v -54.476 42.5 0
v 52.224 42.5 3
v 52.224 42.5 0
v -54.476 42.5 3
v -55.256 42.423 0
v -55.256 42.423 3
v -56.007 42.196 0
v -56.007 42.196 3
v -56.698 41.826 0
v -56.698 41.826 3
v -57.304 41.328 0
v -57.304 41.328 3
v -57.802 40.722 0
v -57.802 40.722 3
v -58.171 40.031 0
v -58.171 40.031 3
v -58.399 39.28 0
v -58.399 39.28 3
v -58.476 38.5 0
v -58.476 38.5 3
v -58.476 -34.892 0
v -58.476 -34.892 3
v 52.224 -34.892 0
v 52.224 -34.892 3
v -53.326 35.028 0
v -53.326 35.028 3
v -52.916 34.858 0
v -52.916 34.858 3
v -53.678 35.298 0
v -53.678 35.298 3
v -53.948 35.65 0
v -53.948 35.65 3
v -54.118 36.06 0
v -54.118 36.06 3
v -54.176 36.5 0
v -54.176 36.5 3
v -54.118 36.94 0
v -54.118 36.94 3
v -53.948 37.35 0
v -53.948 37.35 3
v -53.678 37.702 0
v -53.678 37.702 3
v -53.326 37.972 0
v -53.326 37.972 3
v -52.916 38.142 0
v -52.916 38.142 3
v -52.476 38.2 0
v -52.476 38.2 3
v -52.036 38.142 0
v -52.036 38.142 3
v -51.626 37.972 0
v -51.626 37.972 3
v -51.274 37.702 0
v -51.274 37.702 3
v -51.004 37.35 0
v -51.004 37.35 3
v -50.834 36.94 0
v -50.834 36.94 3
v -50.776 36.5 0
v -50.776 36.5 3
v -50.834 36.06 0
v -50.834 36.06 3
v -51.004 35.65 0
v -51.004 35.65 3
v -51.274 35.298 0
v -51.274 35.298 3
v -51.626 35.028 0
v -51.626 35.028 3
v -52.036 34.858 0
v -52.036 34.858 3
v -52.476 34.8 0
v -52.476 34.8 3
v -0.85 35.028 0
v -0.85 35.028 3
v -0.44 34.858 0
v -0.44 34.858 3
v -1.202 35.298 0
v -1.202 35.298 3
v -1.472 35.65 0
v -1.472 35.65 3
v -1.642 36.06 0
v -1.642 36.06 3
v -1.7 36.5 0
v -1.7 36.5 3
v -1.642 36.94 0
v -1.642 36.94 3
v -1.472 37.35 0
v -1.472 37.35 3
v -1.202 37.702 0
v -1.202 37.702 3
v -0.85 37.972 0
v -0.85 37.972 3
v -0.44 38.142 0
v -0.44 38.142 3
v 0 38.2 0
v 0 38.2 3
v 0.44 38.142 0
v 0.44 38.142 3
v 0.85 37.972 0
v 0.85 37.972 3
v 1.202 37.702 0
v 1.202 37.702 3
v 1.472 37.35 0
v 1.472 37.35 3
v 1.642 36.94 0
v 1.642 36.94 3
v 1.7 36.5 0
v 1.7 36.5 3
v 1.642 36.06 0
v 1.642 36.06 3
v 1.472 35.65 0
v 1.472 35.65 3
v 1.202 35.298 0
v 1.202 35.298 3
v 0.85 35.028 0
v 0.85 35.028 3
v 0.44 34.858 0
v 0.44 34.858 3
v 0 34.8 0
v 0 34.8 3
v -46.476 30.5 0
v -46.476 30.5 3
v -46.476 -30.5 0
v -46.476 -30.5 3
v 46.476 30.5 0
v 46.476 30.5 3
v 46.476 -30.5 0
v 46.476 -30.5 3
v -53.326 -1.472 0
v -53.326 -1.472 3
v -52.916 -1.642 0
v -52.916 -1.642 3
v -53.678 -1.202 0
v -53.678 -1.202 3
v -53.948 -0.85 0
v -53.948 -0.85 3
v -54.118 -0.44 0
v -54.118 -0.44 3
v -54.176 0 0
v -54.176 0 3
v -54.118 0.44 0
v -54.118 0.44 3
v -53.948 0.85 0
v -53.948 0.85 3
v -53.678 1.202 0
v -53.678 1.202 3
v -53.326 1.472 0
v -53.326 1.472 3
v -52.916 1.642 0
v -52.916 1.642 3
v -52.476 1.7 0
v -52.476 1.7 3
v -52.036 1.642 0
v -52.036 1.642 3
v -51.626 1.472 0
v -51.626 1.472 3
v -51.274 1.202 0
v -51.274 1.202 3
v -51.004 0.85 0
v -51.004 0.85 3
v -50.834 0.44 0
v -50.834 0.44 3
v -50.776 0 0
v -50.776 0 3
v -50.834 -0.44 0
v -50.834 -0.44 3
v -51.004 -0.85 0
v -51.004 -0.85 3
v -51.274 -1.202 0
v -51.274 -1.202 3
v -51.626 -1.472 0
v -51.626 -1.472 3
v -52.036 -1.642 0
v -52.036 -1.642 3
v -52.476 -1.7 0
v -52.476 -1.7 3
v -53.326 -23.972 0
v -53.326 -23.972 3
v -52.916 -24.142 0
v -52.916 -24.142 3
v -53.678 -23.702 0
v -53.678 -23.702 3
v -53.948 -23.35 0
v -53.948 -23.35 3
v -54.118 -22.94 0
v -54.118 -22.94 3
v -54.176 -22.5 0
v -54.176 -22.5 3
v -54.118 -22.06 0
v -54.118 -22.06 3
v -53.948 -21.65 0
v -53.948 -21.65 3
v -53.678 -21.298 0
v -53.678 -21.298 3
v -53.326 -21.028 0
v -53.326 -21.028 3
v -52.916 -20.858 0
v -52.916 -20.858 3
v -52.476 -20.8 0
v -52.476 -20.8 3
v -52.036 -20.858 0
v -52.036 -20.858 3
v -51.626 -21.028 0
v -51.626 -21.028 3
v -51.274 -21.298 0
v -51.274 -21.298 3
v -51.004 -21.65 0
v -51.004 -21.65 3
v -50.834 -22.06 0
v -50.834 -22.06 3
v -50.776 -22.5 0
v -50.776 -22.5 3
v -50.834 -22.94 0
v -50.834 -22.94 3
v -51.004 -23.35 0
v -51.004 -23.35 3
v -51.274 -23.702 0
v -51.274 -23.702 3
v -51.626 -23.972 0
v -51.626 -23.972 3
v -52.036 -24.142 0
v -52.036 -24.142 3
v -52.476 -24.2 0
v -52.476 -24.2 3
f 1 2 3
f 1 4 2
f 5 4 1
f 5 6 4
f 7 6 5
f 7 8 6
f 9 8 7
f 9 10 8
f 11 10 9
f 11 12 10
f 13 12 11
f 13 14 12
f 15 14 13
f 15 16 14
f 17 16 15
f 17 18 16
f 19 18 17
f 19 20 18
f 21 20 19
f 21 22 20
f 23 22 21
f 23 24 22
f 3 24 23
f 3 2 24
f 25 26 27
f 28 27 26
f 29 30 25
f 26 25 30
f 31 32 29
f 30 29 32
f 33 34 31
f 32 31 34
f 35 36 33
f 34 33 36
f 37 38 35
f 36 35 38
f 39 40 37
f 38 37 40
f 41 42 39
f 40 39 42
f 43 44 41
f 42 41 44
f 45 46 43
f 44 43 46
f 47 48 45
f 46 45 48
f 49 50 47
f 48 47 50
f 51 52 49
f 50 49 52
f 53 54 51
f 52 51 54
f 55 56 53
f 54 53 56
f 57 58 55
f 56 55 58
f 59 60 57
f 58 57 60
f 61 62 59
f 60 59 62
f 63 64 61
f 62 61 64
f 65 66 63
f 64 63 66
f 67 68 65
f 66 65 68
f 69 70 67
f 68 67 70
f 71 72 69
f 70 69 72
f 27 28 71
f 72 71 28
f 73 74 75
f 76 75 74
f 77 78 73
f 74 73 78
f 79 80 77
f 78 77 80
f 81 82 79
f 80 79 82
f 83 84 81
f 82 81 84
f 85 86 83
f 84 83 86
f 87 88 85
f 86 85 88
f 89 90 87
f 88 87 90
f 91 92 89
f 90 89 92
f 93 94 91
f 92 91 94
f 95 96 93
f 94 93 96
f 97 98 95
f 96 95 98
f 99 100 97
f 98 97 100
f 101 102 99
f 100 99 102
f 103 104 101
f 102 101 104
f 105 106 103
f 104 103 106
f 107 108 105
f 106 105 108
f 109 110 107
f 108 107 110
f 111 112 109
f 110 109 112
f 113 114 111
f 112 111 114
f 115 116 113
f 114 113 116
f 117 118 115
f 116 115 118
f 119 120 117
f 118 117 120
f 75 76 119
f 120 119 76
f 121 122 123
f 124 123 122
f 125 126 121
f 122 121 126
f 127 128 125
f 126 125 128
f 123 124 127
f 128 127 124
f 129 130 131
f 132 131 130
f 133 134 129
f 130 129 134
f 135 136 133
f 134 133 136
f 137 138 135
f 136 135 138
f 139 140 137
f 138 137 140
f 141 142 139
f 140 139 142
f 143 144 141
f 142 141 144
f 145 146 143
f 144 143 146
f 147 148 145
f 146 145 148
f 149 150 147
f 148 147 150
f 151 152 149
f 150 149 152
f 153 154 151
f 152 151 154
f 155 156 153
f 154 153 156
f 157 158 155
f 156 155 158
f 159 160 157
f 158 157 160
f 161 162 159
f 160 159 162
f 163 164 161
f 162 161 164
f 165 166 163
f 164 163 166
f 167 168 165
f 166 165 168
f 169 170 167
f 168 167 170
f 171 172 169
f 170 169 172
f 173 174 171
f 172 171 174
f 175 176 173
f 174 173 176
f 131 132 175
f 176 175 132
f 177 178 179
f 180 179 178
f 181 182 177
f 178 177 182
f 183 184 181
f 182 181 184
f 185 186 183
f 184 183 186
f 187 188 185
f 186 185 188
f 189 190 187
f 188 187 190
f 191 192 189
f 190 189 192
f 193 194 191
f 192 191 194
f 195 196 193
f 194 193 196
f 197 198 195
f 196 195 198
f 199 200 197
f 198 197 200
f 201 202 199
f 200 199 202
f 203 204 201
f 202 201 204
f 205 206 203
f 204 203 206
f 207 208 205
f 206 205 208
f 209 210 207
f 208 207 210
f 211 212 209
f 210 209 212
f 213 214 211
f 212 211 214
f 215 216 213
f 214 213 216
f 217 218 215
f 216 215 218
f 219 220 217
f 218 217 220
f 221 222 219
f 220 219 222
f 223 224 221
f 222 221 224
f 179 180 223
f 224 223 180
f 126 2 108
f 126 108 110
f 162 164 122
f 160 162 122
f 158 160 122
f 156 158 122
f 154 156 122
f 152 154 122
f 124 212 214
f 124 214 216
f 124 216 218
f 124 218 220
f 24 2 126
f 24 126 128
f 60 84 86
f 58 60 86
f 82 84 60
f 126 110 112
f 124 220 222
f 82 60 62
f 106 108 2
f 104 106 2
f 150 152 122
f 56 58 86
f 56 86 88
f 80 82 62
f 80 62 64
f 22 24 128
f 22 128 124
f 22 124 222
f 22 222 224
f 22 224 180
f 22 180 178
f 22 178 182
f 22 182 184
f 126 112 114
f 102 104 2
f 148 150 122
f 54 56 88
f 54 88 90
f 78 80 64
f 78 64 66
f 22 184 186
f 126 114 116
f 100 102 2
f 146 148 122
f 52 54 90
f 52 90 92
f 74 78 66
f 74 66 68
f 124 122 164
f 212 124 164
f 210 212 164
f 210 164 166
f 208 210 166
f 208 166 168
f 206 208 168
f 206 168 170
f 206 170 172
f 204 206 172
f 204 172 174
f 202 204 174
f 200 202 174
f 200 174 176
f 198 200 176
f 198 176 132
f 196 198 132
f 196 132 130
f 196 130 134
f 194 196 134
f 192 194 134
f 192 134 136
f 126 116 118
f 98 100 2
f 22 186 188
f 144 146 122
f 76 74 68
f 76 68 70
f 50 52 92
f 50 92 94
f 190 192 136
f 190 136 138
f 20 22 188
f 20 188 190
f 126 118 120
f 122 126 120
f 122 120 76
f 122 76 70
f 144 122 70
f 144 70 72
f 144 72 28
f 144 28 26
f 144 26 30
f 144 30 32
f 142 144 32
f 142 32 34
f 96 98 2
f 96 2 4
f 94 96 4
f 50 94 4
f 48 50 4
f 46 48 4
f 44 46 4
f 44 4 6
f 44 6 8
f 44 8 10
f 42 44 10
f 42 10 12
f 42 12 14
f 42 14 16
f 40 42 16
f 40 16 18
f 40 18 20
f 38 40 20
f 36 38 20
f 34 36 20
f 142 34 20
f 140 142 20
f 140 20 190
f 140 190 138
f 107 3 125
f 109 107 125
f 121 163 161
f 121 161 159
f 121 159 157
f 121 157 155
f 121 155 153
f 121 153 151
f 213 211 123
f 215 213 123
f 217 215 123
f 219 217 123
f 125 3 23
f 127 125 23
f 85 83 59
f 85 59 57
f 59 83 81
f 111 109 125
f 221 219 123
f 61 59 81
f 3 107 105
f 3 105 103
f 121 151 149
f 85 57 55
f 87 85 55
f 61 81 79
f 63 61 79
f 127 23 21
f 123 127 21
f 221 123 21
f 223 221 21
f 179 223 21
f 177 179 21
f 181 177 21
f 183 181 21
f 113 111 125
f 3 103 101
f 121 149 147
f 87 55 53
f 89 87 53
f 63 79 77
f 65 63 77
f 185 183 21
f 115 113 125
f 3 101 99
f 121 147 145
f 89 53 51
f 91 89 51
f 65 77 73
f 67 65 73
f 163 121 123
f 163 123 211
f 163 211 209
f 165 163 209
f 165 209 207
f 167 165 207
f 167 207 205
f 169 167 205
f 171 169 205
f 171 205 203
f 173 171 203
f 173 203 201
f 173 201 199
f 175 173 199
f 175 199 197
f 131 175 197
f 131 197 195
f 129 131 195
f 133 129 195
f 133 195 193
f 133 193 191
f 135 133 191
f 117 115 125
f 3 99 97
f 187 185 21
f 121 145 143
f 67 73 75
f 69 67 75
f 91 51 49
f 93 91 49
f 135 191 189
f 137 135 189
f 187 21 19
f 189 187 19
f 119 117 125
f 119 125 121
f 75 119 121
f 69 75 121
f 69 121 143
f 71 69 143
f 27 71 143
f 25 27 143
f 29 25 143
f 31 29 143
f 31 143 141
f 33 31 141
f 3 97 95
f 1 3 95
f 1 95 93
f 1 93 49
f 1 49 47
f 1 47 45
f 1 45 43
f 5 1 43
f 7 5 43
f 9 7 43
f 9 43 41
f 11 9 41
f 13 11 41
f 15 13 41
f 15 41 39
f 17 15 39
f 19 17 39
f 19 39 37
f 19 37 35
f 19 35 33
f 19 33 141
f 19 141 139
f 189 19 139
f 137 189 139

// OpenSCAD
// file: lib/teeth.scad
// lib/teeth.scad -- belt-tooth pulley profiles (2D) for HTD-3M and GT2.
//
// PROFILE NOTES (these are approximations good for FDM printing, not tooling-grade):
//
//  HTD 3M  (pitch 3.00 mm, belt tooth height 1.22 mm, tooth radius ~1.0 mm)
//    * Pulley OD = N*3/pi - 2*0.381  (pitch-line differential 0.381 mm).
//    * Each groove is a circle of radius 1.0 mm (+ `extra` clearance) whose centre sits
//      0.14 mm below the OD surface, i.e. 1.14 mm deep and ~1.98 mm wide at the OD,
//      with straight sides continuing out of the surface. The 1.02 mm lands between
//      grooves are left sharp.  This is the classic "round tooth" shape of HTD.
//
//  GT2  (pitch 2.00 mm, belt tooth height 0.75 mm)
//    * Pulley OD = N*2/pi - 2*0.254  (PLD 0.254 mm).
//    * Each groove is a circle of radius 0.60 mm (+ `extra`) centred 0.15 mm below the OD
//      (0.75 mm deep) hulled with a 1.4 mm wide mouth at the OD, which gives the flared
//      GT2 "rounded trapezoid" opening.
//
//  `extra` (default 0.1 mm) widens/deepens the groove to compensate for print inaccuracy.
//  Dimensions follow commonly published pulley data (Gates / SDP-SI).  Test-print one
//  pulley and increase `extra` if the belt is tight, decrease if it skips.

function htd3m_od(n) = n * 3 / PI - 2 * 0.381;
function gt2_od(n)   = n * 2 / PI - 2 * 0.254;
function pulley_od(n, profile) = profile == "htd3m" ? htd3m_od(n) : gt2_od(n);
function profile_pitch(profile) = profile == "htd3m" ? 3 : 2;

// Groove cut, 2D. y = 0 is the OD surface, the groove goes into -y, open towards +y.
module htd3m_groove(extra = 0.1) {
    r = 1.0 + extra;
    translate([0, -(1.14 - 1.0)]) circle(r = r, $fn = $coarse ? 10 : 36);       // round bottom
    translate([-r, -(1.14 - 1.0)]) square([2 * r, 0.14 + 0.6]);  // straight sides to the surface
}
module gt2_groove(extra = 0.1) {
    r = 0.60 + extra;
    hull() {
        translate([0, -(0.75 - 0.60)]) circle(r = r, $fn = $coarse ? 8 : 28);
        translate([-0.7 - extra, 0]) square([1.4 + 2 * extra, 0.6]);
    }
}

// Full toothed disc (2D). `phase` rotates the whole ring (deg).
module tooth_ring(n, profile, extra = 0.1, phase = 0) {
    od = pulley_od(n, profile);
    rotate(phase)
    difference() {
        circle(d = od, $fn = $coarse ? n * 2 : max(n * 6, 180));
        for (i = [0 : n - 1])
            rotate(i * 360 / n) translate([0, od / 2]) {
                if (profile == "htd3m") htd3m_groove(extra);
                else gt2_groove(extra);
            }
    }
}
// file: lib/common.scad
// lib/common.scad -- small shared helpers (2D shapes, nut pockets, fastener data).
// `use <lib/common.scad>`

eps_c = 0.01;

// ---- fastener data ----------------------------------------------------------
// [thread d, nut across-flats, nut thickness, clearance hole, self-tap pilot, head d, head height]
function _screw_row(s) =
    s == "M2.5" ? [2.5,  5.0, 2.0, 2.8, 2.2,  4.5, 2.5] :
    s == "M3"   ? [3.0,  5.5, 2.4, 3.4, 2.7,  5.5, 3.0] :
    s == "M4"   ? [4.0,  7.0, 3.2, 4.4, 3.6,  7.0, 4.0] :
    s == "M5"   ? [5.0,  8.0, 4.0, 5.4, 4.5,  8.5, 5.0] :
    s == "M6"   ? [6.0, 10.0, 5.0, 6.6, 5.4, 10.0, 6.0] :
    s == "M8"   ? [8.0, 13.0, 6.5, 8.4, 7.2, 13.0, 8.0] :
                  [3.0,  5.5, 2.4, 3.4, 2.7,  5.5, 3.0];
function sc_d(s)     = _screw_row(s)[0];
function sc_nut_af(s)= _screw_row(s)[1];
function sc_nut_t(s) = _screw_row(s)[2];
function sc_clear(s) = _screw_row(s)[3];
function sc_tap(s)   = _screw_row(s)[4];
function sc_head_d(s)= _screw_row(s)[5];
function sc_head_h(s)= _screw_row(s)[6];

// ---- 2D helpers -------------------------------------------------------------
// Rounded rectangle centred on the origin
module rrect2(w, h, r = 2) {
    rr = min(r, min(w, h) / 2 - 0.01);
    offset(r = rr) square([w - 2 * rr, h - 2 * rr], center = true);
}

// Slot (stadium): two circles of diameter d, centres `cc` apart along X, centred on origin
module slot2(cc, d) {
    hull() {
        translate([-cc / 2, 0]) circle(d = d);
        translate([ cc / 2, 0]) circle(d = d);
    }
}

// ---- 3D helpers -------------------------------------------------------------
// Captive nut pocket with a slide-in slot.
// Local frame: nut axis = +Z (pocket spans z = 0 .. t), slot runs towards +Y, centred on X = 0.
// Flats are at X = +-af/2 so the nut slides straight along +Y.
module nut_pocket(af, t, slot_len, clr = 0.15) {
    a = af + 2 * clr;
    linear_extrude(height = t + clr) {
        rotate(30) circle(d = a / cos(30), $fn = 6);
        translate([-a / 2, 0]) square([a, slot_len]);
    }
}

// Cone-ended countersunk hole for a flat-head screw. Axis +Z, head face at z = 0, shank goes up.
module countersink(d_shank, d_head, h_total) {
    ch = (d_head - d_shank) / 2;
    translate([0, 0, -eps_c]) cylinder(d1 = d_head + 2 * eps_c, d2 = d_shank, h = ch + eps_c);
    cylinder(d = d_shank, h = h_total);
}
// file: lib/pulley_core.scad
// lib/pulley_core.scad -- generic toothed belt pulley (HTD-3M or GT2), axis = Z.
//
// Print orientation (what this module outputs): bottom flange on the bed (z = 0),
// toothed section, top flange (45 deg underside so it prints without support),
// hub on top.  Bore, keyway/D-flat and set-screw/clamp features are cut in.
//
//   z = 0 .. bt                     bottom flange (optional)
//   bt .. bt+tooth_len              toothed section
//   .. + ft                         top flange (optional, 45 deg chamfered underside)
//   .. + hub_len                    hub (set-screw nut trap opens out of its top face)
//
// Set screw: radial hole along +X, nut pocket slides in from the top face (+Z).
// Keyway (if any) is at key_angle (90 = +Y); a D-flat (if any) is on the +X side so the
// set screw bears on it.
use <common.scad>
use <teeth.scad>
eps_c = 0.01;   // (variables are not exported by `use`, so each lib defines its own)

function pc_bt(bottom_flange, flange_t) = bottom_flange ? flange_t : 0;
function pc_ft(top_flange, flange_t, flange_extra) = top_flange ? max(flange_t, flange_extra) : 0;
function pc_height(tooth_len, flange_t, flange_extra, bottom_flange, top_flange, hub_len) =
    pc_bt(bottom_flange, flange_t) + tooth_len + pc_ft(top_flange, flange_t, flange_extra) + hub_len;
function pc_belt_mid(tooth_len, flange_t, bottom_flange) = pc_bt(bottom_flange, flange_t) + tooth_len / 2;

// 2D bore profile: round bore + optional D-flat (+X side) + optional keyway
module pc_bore_2d(bore_d, fit, flat_depth, keyway_w, keyway_h, key_angle) {
    br = bore_d / 2 + fit;
    intersection() {
        circle(r = br, $fn = $coarse ? 32 : 96);
        if (flat_depth > 0)
            translate([-br - 1, -br - 1]) square([br + 1 + (bore_d / 2 - flat_depth + fit), 2 * br + 2]);
        else
            square(4 * br, center = true);
    }
    if (keyway_w > 0)
        rotate(key_angle - 90)
            translate([-(keyway_w + 2 * fit) / 2, 0]) square([keyway_w + 2 * fit, br + keyway_h + fit]);
}

module belt_pulley(
        n, profile = "htd3m",
        tooth_len = 16,
        bore_d = 8, fit = 0.15,
        flange_t = 1.2, flange_extra = 1.5,
        bottom_flange = true, top_flange = true,
        hub_d = 20, hub_len = 8,
        hub_mode = "setscrew",        // "setscrew" | "clamp" | "none"
        screw = "M4",
        screw_z = undef,              // override set-screw height (hubless pulleys)
        keyway_w = 0, keyway_h = 1.4, key_angle = 90,
        flat_depth = 0,
        tooth_extra = 0.1, tooth_phase = 0) {

    od   = pulley_od(n, profile);
    fl_d = od + 2 * flange_extra;
    bt   = pc_bt(bottom_flange, flange_t);
    ft   = pc_ft(top_flange, flange_t, flange_extra);
    z1   = bt + tooth_len;            // top of toothed section
    zh   = z1 + ft;                   // hub starts here
    br   = bore_d / 2 + fit;
    af   = sc_nut_af(screw);
    nt   = sc_nut_t(screw) + 0.2;
    // smallest hub that still leaves wall around the screw features
    hd_min = hub_mode == "clamp" ? 2 * (br + 1.5 + af / 2 + sc_head_d(screw) / 2 + 2.0)
                                 : 2 * (br + 1.0 + nt + 2.0);
    hd     = hub_len > 0 ? max(hub_d, hd_min) : 0;
    base_d = top_flange ? fl_d : od;
    cone_h = (hub_len > 0 && hd > base_d) ? min((hd - base_d) / 2, hub_len * 0.7) : 0;
    total_h = zh + hub_len;
    zc = is_undef(screw_z) ? zh + cone_h + (hub_len - cone_h) / 2 : screw_z;
    rout = max(hd, fl_d) / 2 + 1;

    difference() {
        union() {
            if (bottom_flange) cylinder(d = fl_d, h = flange_t, $fn = $coarse ? 48 : 128);
            translate([0, 0, bt - eps_c])
                linear_extrude(height = tooth_len + 2 * eps_c)
                    tooth_ring(n, profile, tooth_extra, tooth_phase);
            if (top_flange) translate([0, 0, z1 - eps_c]) {
                cylinder(d1 = od, d2 = fl_d, h = flange_extra + eps_c, $fn = $coarse ? 48 : 128);
                if (ft > flange_extra)
                    translate([0, 0, flange_extra]) cylinder(d = fl_d, h = ft - flange_extra + eps_c, $fn = $coarse ? 48 : 128);
            }
            if (hub_len > 0) translate([0, 0, zh - eps_c]) {
                if (cone_h > 0) cylinder(d1 = base_d, d2 = hd, h = cone_h + eps_c, $fn = $coarse ? 48 : 128);
                translate([0, 0, cone_h]) cylinder(d = hd, h = hub_len - cone_h + eps_c, $fn = $coarse ? 48 : 128);
            }
        }

        // bore, D-flat and keyway
        translate([0, 0, -1])
            linear_extrude(height = total_h + 2)
                pc_bore_2d(bore_d, fit, flat_depth, keyway_w, keyway_h, key_angle);

        // set screw with captive nut trap (nut slides in from the top face)
        if (hub_mode == "setscrew") {
            translate([0, 0, zc]) rotate([0, 90, 0]) cylinder(d = sc_clear(screw), h = rout, $fn = 32);
            translate([br + 1.0, 0, zc]) rotate([90, 0, 90])
                nut_pocket(af, nt, slot_len = total_h - zc + 1);
        }

        // split hub clamp: slit on +X, cross screw along Y, nut pocket on the +Y side
        if (hub_mode == "clamp" && hub_len > 0) {
            xs = br + 1.5 + af / 2;
            translate([0, -0.5, zh - eps_c]) cube([hd, 1.0, hub_len + 1]);
            translate([xs, 0, zc]) rotate([90, 0, 0]) cylinder(d = sc_clear(screw), h = hd + 2, center = true, $fn = 32);
            translate([xs, -4.0, zc]) rotate([90, 0, 0]) cylinder(d = sc_head_d(screw) + 0.6, h = hd, $fn = 32);
            translate([xs, 2.0, zc])
                multmatrix([[-1, 0, 0, 0], [0, 0, 1, 0], [0, 1, 0, 0], [0, 0, 0, 1]])
                    nut_pocket(af, nt, slot_len = total_h - zc + 1);
        }
    }
}
// file: lib/belt.scad
// lib/belt.scad -- belt length maths and stock-belt helpers.
// Pure functions, no geometry. `use <lib/belt.scad>` to import them.

// Pitch diameter of a toothed pulley (mm)
function pitch_dia(teeth, pitch) = teeth * pitch / PI;

// Exact open-belt length (mm, measured on the pitch line) for two pulleys of
// pitch diameters d1, d2 and centre distance c:
//   L = 2 c cos(phi) + pi (D + d) / 2 + phi (D - d),  phi = asin((D - d) / 2c)
function belt_length(d1, d2, c) =
    let (phi = asin(abs(d2 - d1) / (2 * c)))     // degrees
    2 * c * cos(phi) + PI * (d1 + d2) / 2 + (phi * PI / 180) * abs(d2 - d1);

// Same, but from tooth counts and belt pitch
function belt_length_t(t1, t2, c, pitch) =
    belt_length(pitch_dia(t1, pitch), pitch_dia(t2, pitch), c);

// Centre distance that gives exactly belt length L (fixed-point iteration)
function _cfl(L, d1, d2, c, n) =
    n == 0 ? c :
    let (phi = asin(abs(d2 - d1) / (2 * c)))
    _cfl(L, d1, d2,
         (L - PI * (d1 + d2) / 2 - (phi * PI / 180) * abs(d2 - d1)) / (2 * cos(phi)),
         n - 1);
function center_for_length(L, d1, d2) =
    _cfl(L, d1, d2, (L - PI * (d1 + d2) / 2) / 2, 25);

// Nearest stock belt length from a list (list of lengths in mm)
function nearest_stock(L, list) =
    let (err = [for (s = list) abs(s - L)],
         i = search(min(err), err)[0])
    list[i];

// Closest stock belt that is NOT shorter than L - slack (never over-tight)
// (kept simple: plain nearest is the default; this is the "round up" variant)
function stock_at_or_above(L, list) =
    let (ok = [for (s = list) if (s >= L) s])
    len(ok) > 0 ? min(ok) : max(list);

// ---- typical stock closed-loop belts (edit to match your supplier) ----------
// HTD 3M closed belts are always 3 mm x integer teeth. Common 3M-xxx numbers:
function htd3m_stock() = [150, 159, 165, 174, 180, 186, 192, 195, 198, 201, 204, 207, 210, 213, 216, 219, 222, 225, 228, 231,
               237, 240, 246, 252, 255, 264, 270, 273, 279, 285, 291, 300, 306,
               312, 318, 324, 330, 339, 345, 351, 360, 372, 384, 399, 420, 450];
// GT2 6 mm closed loops that are easy to buy
function gt2_stock() = [158, 200, 240, 280, 300, 330, 360, 400, 450, 500, 610];

// Human-readable report (returns a string; caller does echo)
function belt_report(name, t1, t2, c, pitch, stock) =
    let (d1 = pitch_dia(t1, pitch), d2 = pitch_dia(t2, pitch),
         L = belt_length(d1, d2, c),
         S = nearest_stock(L, stock),
         cS = center_for_length(S, d1, d2))
    str(name, ": ", t1, "T/", t2, "T pitch ", pitch, " mm, centre ", c,
        " mm -> belt length ", round(L * 100) / 100, " mm (",
        round(L / pitch * 100) / 100, " teeth); nearest stock ", S, " mm (",
        S / pitch, "T), error ", round((S - L) * 100) / 100,
        " mm; stock belt needs centre ", round(cS * 100) / 100, " mm");
// main file
// door_bezel.scad -- printed trim frame for the window cut in the change-gear door where the motor pokes through.
//
// The motor sticks out past the closed door, so the door gets a window (lib/layout.scad: motor_window). The window edge away
// from the hinge leaves the room the door needs to swing past the motor's back corner; the other three edges are tight.
// This frame sits on the door's OUTSIDE face, held by M3 screws + nyloc nuts through the door. It covers the cut edge,
// stiffens the sheet round the hole, and carries a seal: glue a self-adhesive brush strip (or soft foam) to the inside
// of the opening so it closes the far-side swing gap. Brush bristles just bend as the door swings past the motor.
// The frame is trimmed to the door's edges (the window sits close to the bottom fold), and screw holes are only placed where
// there is sheet behind them.
//
// It is also the CUTTING TEMPLATE: tension the belts, close the door gently onto the motor's back with a dab of paint on its
// corners, line the bezel up on the marks (the wider gap on the side away from the hinge), scribe the opening and drill the
// holes. mode = "template" exports the opening + holes as a 1:1 DXF.
//
// Print: flat (mode = "print", the default). No supports.
include <params.scad>
include <lib/layout.scad>

mode = "print";            // "print" | "lathe" (in place on the closed door) | "template" (2D: opening + holes, 1:1)
which = "motor";           // "motor" | "encoder" (only needed if the encoder pokes through too)

hole_edge_min = 5;         // screw hole centre to the door's edge, at least (mm)

module rrect(c, size, r) {
    rr = min(r, min(size) / 2 - 0.01);
    translate(c) offset(r = rr, $fn = 32) square(size - 2 * [rr, rr], center = true);
}
function wsize(w) = [w[1] - w[0], w[3] - w[2]];
function wcentre(w) = [(w[0] + w[1]) / 2, (w[2] + w[3]) / 2];

// The door's front face, as far as this part cares: right edge and bottom fold (= the panel edges).
module door_face_2d() { translate([-1000, panel_bottom_y]) square([1000 + panel_right_x, 2000]); }

// M3 holes on the frame's centre line: corners, mid-sides, and points just above the window's bottom edge; only those with
// sheet behind them (>= hole_edge_min from the door's right edge and bottom fold).
function bezel_holes(w) =
    let(c = wcentre(w), s = wsize(w), hx = s.x / 2 + bezel_w / 2, hy = s.y / 2 + bezel_w / 2,
        cand = [[-hx, hy], [hx, hy], [0, hy], [-hx, 0], [hx, 0], [-hx, -s.y / 2 + 8], [hx, -s.y / 2 + 8], [-hx, -hy], [hx, -hy], [0, -hy]])
    [for (p = cand) let(q = c + p) if (q.y - panel_bottom_y >= hole_edge_min && panel_right_x - q.x >= hole_edge_min) q];

module bezel_2d(w) {          // in lathe XY
    difference() {
        intersection() { rrect(wcentre(w), wsize(w) + 2 * [bezel_w, bezel_w], bezel_r); door_face_2d(); }
        translate([w[0], w[2]]) square(wsize(w));
        for (p = bezel_holes(w)) translate(p) circle(d = m3_clear, $fn = 24);
    }
}

module door_bezel_at(w) {     // in place on the closed door, for a window [x0, x1, y0, y1]
    translate([0, 0, door_depth + door_t]) linear_extrude(bezel_t) bezel_2d(w);
}

win = which == "encoder" ? enc_window : motor_window;

module template_2d() {        // what to cut and drill in the door, in lathe XY
    translate([win[0], win[2]]) square(wsize(win));
    for (p = bezel_holes(win)) translate(p) circle(d = m3_clear, $fn = 24);
}

echo(str("door_bezel (", which, "): window ", round(wsize(win).x * 10) / 10, " x ", round(wsize(win).y * 10) / 10,
         " mm, frame ", bezel_w, " mm wide x ", bezel_t, " mm, ", len(bezel_holes(win)), " x M3 (holes with sheet behind them)"));

if (mode == "template") translate(-wcentre(win)) template_2d();
else if (mode == "lathe") door_bezel_at(win);
else translate(-wcentre(win)) linear_extrude(bezel_t) bezel_2d(win);
